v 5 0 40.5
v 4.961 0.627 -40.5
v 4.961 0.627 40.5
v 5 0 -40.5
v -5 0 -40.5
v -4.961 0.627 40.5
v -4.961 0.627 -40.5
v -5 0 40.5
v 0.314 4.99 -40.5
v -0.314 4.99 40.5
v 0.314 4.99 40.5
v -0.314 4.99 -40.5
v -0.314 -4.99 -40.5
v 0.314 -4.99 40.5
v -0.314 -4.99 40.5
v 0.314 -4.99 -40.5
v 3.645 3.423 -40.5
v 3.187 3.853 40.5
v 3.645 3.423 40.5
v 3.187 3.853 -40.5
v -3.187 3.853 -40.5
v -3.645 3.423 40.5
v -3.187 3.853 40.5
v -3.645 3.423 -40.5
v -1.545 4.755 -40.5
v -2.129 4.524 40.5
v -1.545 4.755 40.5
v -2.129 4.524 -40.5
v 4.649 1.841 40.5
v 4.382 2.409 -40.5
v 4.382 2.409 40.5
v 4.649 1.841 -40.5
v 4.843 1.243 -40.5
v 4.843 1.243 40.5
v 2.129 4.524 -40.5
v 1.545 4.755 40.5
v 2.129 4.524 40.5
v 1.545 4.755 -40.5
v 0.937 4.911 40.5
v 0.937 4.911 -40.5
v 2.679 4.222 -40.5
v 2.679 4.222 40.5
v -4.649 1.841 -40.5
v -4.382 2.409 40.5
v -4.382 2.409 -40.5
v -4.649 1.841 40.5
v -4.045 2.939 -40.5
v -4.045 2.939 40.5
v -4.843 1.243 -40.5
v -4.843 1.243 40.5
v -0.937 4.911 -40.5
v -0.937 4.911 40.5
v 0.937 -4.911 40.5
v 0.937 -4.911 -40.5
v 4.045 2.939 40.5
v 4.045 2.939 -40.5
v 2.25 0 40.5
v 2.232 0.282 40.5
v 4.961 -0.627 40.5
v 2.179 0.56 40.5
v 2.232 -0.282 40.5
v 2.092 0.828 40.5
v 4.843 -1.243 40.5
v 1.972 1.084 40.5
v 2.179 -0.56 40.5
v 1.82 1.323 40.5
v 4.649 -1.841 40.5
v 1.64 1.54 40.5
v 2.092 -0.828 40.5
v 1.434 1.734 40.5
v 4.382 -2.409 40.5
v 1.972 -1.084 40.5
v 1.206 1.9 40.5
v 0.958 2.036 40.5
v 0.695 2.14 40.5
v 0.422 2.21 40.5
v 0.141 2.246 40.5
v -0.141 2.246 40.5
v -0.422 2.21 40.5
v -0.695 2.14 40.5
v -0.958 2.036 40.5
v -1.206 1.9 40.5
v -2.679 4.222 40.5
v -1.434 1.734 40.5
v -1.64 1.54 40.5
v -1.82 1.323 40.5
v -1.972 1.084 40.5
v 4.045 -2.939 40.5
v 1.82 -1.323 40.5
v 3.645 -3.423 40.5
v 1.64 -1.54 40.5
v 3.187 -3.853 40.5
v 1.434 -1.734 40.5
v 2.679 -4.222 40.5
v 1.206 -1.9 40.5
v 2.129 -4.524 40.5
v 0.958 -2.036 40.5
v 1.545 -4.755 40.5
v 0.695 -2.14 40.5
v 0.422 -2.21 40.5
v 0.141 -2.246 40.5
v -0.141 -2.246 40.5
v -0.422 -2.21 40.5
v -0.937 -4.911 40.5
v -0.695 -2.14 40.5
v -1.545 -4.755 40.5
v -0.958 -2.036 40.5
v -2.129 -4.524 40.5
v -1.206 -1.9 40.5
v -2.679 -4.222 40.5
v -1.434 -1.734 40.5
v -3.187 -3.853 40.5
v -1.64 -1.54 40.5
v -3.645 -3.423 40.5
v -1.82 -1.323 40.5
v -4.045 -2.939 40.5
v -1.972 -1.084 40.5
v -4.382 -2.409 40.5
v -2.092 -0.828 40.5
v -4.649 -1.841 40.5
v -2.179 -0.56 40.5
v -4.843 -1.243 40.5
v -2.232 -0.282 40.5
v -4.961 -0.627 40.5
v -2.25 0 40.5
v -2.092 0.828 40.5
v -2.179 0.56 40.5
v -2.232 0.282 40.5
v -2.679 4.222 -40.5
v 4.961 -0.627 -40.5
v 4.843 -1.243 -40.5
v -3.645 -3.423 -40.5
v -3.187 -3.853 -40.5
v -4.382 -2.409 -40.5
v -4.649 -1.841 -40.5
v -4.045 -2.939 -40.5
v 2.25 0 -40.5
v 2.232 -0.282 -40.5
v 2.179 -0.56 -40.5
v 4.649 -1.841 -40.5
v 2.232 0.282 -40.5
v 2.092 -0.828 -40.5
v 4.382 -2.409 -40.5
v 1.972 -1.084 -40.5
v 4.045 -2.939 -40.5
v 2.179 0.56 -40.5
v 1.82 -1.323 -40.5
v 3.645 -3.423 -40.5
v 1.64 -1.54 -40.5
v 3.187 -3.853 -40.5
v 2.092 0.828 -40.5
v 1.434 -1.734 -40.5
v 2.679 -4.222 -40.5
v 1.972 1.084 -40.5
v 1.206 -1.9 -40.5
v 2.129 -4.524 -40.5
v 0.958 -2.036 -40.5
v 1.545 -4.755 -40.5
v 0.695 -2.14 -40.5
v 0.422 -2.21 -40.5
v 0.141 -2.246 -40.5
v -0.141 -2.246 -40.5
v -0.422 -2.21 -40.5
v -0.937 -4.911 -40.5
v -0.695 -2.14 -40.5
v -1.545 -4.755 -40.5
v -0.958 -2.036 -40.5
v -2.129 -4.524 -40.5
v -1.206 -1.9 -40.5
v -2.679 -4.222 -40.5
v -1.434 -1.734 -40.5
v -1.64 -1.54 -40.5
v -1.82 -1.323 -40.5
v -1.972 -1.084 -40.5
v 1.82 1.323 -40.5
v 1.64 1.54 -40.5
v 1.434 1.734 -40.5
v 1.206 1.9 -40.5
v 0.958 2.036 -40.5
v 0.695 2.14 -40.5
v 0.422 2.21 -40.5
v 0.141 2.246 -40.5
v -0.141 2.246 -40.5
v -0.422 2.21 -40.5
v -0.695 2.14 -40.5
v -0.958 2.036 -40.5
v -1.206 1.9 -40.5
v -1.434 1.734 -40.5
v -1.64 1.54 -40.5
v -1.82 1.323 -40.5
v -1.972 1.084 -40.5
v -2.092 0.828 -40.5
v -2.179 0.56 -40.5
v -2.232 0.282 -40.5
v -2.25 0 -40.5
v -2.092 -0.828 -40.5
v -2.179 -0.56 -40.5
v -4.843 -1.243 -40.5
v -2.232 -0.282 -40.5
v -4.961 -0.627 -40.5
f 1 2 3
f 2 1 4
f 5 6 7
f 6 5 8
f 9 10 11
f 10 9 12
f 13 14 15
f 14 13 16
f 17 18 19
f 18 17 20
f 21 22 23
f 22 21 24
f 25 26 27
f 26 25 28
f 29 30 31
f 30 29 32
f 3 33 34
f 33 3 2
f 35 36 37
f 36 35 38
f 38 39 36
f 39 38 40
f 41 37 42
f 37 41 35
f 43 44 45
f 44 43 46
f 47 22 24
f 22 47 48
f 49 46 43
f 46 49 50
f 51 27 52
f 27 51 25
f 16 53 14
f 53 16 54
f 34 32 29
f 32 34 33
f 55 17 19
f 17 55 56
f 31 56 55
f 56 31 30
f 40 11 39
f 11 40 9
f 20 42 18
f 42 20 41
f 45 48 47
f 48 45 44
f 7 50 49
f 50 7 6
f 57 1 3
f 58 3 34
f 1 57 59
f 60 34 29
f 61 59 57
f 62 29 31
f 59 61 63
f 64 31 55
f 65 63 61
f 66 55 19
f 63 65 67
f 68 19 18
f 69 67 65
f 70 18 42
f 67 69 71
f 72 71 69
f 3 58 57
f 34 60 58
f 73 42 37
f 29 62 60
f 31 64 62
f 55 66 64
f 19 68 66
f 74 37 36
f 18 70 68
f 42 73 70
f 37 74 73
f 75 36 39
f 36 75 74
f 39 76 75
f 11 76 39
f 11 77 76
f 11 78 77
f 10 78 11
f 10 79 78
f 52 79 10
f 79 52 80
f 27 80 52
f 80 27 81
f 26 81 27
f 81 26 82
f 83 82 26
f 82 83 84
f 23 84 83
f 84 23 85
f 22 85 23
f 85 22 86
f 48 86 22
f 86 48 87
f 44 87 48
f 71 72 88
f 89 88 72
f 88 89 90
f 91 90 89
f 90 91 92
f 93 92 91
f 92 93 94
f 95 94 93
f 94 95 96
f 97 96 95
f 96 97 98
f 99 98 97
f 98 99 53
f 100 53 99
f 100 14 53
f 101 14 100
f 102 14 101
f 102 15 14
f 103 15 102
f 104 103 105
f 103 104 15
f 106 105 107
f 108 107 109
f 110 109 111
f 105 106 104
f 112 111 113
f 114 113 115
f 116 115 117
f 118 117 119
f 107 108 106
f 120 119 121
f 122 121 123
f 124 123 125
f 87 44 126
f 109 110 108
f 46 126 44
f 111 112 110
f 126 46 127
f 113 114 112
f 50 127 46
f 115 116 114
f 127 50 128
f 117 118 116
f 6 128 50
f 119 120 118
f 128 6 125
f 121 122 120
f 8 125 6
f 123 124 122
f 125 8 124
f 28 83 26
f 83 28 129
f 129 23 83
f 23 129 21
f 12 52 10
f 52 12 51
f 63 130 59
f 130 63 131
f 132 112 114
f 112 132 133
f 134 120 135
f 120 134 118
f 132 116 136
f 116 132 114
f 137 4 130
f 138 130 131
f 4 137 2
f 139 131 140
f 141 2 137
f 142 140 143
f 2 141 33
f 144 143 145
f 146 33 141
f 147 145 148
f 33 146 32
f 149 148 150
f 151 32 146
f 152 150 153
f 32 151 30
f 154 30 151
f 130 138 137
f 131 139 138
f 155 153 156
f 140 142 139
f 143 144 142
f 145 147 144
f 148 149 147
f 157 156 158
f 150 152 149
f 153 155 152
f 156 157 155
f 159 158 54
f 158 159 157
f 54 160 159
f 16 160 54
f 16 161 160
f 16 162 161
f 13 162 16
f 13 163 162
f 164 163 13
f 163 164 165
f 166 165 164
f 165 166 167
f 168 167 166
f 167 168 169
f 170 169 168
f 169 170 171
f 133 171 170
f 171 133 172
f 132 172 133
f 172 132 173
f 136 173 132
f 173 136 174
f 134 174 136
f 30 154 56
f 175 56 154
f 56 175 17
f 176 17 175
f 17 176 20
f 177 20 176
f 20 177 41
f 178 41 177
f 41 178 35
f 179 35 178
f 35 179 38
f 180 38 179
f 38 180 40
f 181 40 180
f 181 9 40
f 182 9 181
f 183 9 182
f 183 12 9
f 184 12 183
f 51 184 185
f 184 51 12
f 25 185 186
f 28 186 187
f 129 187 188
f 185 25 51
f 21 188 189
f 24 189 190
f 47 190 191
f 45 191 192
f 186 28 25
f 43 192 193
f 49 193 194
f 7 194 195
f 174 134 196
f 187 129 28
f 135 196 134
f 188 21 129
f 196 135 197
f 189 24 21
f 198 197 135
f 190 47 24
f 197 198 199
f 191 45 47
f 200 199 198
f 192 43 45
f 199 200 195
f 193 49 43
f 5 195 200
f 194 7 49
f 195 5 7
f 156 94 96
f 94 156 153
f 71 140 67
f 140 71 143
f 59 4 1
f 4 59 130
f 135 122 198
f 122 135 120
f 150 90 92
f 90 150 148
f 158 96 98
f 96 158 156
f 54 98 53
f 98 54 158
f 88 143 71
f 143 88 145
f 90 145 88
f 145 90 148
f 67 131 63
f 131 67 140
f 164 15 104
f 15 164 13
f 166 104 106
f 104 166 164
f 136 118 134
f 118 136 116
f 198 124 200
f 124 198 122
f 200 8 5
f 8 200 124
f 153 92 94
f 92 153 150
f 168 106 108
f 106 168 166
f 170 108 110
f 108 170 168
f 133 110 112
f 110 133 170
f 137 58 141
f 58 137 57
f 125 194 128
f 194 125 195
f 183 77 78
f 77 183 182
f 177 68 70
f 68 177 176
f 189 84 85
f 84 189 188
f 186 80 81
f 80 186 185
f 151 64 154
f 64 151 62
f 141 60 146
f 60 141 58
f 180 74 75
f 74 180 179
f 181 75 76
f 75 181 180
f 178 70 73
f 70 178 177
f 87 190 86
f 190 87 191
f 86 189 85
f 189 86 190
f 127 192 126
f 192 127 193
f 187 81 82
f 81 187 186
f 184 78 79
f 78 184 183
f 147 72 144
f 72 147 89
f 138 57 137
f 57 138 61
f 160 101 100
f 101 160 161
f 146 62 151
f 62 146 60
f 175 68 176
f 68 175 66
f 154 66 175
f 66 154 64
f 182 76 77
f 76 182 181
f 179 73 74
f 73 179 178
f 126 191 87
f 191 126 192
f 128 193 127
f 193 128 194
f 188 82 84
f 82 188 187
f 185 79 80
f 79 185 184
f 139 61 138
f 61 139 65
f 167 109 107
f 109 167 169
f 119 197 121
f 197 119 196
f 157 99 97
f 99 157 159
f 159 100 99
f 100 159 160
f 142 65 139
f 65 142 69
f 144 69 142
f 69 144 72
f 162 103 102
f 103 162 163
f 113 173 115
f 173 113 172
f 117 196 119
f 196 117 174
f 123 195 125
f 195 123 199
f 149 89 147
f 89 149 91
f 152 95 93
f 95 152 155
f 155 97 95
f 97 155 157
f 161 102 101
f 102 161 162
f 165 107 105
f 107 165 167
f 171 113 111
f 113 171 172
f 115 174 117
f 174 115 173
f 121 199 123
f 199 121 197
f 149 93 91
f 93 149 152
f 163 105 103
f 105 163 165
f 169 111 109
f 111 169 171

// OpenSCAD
$fn = 50;


difference() {
	union() {
		translate(v = [0, 0, -40.5000000000]) {
			cylinder(h = 81, r = 5.0000000000);
		}
	}
	union() {
		translate(v = [0, 0, -100.0000000000]) {
			cylinder(h = 200, r = 2.2500000000);
		}
	}
}
